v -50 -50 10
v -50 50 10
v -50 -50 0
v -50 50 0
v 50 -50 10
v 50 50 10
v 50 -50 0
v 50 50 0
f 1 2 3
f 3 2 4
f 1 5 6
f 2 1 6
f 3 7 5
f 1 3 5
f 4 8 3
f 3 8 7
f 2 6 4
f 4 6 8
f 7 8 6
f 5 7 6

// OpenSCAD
HEIGHT=10;
WIDTH=100;
// THICKNESS=2;

translate([0, 0, HEIGHT/2]) difference() {
    cube(size=[WIDTH, WIDTH, HEIGHT], center=true);
    // #cube(size=[WIDTH-THICKNESS, WIDTH-THICKNESS, HEIGHT+2], center=true);
}
